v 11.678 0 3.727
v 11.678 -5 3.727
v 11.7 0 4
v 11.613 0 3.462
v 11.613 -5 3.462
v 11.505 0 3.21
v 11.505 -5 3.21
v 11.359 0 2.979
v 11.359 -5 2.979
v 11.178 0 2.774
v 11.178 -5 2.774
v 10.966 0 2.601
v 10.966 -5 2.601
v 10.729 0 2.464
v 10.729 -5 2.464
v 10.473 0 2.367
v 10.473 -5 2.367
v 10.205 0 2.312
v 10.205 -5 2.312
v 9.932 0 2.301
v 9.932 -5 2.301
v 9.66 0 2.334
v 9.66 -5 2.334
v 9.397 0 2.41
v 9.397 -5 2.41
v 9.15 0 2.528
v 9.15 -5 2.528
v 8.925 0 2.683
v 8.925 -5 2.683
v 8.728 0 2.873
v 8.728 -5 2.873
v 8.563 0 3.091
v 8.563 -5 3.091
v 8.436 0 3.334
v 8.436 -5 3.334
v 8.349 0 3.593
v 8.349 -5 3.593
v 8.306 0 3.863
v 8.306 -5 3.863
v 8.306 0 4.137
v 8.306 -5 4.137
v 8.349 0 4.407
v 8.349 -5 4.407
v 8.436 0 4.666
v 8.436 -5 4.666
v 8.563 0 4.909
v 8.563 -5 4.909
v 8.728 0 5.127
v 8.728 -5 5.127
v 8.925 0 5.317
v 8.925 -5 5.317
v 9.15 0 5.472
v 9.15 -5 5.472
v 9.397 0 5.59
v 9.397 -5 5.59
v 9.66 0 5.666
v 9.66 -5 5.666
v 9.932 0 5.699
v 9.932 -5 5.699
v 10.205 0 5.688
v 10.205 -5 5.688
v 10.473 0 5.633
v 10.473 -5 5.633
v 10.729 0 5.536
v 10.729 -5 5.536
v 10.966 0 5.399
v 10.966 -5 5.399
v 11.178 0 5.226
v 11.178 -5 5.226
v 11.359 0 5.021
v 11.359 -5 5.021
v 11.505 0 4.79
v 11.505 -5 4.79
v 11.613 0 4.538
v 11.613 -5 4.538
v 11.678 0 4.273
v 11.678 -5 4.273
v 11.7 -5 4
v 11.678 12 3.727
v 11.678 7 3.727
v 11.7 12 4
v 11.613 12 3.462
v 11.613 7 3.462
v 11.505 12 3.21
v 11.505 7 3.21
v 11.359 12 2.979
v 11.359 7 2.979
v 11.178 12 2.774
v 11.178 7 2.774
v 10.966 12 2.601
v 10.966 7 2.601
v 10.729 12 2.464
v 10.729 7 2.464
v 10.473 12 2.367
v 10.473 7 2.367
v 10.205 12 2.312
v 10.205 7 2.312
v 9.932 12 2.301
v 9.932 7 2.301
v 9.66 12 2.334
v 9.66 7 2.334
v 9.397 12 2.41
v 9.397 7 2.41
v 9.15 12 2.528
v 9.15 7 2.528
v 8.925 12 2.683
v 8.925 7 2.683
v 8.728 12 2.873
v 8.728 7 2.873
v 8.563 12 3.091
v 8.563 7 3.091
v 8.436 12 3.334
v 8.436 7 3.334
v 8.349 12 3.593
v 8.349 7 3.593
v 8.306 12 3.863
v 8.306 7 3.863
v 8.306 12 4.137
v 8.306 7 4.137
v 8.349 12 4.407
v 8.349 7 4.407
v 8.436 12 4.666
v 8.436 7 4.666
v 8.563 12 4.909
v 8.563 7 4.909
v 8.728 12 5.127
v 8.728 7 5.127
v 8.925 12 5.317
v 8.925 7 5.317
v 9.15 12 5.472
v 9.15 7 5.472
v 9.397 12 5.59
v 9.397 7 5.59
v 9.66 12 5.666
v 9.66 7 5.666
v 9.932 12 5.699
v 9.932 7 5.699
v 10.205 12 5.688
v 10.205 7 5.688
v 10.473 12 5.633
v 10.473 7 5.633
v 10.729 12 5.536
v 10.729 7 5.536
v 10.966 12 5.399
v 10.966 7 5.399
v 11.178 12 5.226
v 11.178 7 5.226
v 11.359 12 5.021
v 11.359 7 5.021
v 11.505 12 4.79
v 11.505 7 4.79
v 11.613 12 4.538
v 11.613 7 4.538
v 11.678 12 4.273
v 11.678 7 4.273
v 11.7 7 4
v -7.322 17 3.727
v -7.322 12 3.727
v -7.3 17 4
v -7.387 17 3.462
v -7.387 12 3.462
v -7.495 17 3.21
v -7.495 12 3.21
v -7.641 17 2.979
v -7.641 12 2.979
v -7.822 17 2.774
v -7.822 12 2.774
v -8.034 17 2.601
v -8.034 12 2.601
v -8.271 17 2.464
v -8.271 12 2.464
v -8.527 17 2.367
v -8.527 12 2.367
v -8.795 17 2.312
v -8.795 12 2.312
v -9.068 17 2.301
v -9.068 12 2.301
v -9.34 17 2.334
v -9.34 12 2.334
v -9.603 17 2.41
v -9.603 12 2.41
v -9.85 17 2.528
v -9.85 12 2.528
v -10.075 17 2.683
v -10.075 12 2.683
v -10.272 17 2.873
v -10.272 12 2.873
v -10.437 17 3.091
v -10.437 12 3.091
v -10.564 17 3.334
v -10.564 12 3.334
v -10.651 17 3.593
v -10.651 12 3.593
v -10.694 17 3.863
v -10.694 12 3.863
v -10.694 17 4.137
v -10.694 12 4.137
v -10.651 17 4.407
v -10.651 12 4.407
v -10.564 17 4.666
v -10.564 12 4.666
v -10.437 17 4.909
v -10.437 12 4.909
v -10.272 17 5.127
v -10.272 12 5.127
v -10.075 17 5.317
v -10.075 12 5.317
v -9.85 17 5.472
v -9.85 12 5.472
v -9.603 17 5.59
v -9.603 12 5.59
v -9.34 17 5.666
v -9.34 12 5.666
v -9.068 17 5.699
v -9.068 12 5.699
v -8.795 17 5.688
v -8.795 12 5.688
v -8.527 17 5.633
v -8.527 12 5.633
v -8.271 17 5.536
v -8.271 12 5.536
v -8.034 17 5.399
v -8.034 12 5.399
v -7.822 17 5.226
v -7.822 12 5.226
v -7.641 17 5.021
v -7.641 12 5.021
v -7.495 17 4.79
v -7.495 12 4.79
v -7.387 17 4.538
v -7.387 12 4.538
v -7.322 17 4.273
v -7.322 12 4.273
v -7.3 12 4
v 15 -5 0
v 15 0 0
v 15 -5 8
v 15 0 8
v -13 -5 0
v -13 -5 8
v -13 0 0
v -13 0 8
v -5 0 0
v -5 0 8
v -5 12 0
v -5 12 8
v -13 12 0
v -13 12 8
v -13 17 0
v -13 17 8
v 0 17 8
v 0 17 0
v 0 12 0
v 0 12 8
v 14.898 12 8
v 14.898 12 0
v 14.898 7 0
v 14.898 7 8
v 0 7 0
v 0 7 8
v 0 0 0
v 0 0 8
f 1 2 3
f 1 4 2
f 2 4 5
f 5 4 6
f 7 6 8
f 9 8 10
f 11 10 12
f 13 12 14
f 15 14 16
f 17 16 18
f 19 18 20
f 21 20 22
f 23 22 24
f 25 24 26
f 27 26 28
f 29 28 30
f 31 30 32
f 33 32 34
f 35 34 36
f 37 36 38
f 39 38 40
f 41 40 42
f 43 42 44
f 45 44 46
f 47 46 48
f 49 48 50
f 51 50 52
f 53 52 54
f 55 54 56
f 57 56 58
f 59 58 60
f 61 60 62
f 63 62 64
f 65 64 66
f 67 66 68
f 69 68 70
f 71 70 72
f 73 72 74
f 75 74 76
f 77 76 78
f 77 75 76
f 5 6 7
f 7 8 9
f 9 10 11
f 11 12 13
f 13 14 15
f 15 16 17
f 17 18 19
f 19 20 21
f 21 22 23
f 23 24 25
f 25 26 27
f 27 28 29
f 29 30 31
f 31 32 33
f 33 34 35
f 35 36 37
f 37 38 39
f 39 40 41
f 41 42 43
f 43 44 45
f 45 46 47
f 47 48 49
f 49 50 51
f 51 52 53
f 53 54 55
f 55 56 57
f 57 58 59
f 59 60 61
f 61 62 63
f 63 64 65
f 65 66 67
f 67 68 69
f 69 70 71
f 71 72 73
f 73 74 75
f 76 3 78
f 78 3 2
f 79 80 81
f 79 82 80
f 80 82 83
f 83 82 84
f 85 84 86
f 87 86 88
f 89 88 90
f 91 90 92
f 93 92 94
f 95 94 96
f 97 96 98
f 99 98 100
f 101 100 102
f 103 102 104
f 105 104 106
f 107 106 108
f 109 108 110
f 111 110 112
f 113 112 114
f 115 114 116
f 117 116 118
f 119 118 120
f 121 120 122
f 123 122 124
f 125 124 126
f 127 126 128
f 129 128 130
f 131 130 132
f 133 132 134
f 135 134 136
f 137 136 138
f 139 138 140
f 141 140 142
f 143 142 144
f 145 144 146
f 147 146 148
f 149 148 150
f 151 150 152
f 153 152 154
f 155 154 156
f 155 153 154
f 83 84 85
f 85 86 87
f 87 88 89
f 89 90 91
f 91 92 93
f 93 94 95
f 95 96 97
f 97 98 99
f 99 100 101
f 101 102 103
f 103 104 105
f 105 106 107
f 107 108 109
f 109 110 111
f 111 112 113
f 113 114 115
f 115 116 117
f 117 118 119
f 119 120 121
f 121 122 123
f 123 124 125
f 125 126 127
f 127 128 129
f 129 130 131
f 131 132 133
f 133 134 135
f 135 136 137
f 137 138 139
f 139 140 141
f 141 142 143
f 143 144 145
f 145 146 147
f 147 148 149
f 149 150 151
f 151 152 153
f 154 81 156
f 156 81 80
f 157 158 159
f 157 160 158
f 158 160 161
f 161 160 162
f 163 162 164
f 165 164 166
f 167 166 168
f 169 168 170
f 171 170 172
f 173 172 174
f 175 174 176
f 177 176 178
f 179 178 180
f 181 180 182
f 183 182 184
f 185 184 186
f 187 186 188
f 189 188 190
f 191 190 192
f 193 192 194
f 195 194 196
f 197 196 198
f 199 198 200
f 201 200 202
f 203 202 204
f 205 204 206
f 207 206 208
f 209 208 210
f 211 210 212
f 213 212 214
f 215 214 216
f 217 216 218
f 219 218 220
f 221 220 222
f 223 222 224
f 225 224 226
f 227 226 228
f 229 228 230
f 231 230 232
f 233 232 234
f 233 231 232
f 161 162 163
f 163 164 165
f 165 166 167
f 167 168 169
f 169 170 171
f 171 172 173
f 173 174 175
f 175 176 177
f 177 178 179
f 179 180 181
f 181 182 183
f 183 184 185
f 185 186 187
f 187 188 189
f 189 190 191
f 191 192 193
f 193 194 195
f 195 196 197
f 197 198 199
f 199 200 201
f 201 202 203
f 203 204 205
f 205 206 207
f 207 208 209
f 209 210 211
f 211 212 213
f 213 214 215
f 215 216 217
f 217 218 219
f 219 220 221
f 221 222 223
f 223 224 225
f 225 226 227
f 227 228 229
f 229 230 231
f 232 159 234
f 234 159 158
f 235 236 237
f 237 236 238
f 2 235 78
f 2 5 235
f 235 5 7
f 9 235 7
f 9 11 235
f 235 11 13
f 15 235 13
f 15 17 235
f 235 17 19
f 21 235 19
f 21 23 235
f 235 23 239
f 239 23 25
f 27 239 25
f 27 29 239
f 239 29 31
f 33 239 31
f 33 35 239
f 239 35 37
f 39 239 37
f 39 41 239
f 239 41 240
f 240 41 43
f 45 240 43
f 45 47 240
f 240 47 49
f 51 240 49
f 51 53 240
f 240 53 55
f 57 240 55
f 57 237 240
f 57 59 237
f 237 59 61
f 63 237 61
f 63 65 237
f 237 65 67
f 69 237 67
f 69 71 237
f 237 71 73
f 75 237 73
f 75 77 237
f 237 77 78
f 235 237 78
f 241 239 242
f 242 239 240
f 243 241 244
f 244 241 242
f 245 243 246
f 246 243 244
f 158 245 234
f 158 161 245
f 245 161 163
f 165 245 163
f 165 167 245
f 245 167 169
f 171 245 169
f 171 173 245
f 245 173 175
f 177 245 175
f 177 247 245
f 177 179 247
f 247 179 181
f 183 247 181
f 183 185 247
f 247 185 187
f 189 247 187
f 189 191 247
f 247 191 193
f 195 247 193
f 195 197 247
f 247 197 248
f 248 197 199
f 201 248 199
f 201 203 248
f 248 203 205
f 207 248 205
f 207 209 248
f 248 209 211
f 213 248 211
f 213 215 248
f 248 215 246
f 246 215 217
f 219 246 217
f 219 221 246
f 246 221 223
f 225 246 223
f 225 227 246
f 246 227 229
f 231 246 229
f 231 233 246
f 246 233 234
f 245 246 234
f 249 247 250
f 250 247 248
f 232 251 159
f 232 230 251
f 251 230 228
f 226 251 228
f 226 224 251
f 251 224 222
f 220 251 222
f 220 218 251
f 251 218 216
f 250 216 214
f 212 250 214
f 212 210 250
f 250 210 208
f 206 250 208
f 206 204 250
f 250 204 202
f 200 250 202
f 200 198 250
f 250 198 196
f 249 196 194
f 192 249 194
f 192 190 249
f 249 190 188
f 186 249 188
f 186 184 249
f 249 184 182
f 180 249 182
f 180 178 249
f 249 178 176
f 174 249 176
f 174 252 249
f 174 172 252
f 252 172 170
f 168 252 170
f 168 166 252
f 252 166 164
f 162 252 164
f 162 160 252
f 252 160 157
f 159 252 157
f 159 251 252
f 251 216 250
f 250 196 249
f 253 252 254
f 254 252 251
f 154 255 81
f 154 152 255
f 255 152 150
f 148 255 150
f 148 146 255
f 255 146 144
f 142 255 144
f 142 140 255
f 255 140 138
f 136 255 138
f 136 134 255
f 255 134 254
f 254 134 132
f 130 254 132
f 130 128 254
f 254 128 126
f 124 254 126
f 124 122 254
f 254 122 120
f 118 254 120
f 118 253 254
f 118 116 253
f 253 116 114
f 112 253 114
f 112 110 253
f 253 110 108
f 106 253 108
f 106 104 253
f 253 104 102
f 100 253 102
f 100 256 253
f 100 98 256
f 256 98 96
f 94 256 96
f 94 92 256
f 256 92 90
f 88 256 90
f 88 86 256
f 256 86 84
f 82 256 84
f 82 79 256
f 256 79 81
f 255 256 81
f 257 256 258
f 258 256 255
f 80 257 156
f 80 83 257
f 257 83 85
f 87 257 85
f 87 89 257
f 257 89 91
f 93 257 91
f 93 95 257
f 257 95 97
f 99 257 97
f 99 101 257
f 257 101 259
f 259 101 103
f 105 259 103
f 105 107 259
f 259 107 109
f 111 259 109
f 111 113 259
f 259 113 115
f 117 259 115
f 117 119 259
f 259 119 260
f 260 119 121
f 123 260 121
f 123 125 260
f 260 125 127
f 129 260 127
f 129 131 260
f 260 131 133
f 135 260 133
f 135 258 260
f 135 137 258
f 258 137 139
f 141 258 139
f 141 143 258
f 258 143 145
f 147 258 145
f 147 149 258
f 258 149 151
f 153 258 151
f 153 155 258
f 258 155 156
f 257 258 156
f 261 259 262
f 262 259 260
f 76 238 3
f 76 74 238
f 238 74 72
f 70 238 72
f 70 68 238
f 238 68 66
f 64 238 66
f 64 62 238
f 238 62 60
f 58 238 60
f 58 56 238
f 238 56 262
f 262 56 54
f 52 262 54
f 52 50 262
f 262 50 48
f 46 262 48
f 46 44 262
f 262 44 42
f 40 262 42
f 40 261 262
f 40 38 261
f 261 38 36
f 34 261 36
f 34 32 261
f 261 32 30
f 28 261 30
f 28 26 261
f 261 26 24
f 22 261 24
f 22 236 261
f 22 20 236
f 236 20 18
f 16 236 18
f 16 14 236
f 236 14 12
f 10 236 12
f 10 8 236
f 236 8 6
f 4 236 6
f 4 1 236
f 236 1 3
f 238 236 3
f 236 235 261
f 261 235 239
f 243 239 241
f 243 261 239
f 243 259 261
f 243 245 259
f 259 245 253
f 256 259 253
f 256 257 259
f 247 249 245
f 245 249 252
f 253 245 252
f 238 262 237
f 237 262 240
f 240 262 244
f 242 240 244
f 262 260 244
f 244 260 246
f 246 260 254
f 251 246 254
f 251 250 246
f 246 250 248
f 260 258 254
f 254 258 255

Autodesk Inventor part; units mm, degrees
ref_plane "YZ Plane" through (0, 0, 0) normal (1, 0, 0) x (0, 1, 0)
ref_plane "XZ Plane" through (0, 0, 0) normal (0, 1, 0) x (-1, 0, 0)
ref_plane "XY Plane" through (0, 0, 0) normal (0, 0, 1) x (1, 0, 0)
sketch "Sketch1" plane through (0, 0, 0) normal (0, 0, 1) x (1, 0, 0)
  line L0 (0, 0) -> (15, 0)
  line L1 (15, 0) -> (15, -5)
  line L2 (15, -5) -> (-13, -5)
  line L3 (-13, -5) -> (-13, 0)
  line L4 (-13, 0) -> (-5, 0)
  line L5 (-5, 0) -> (-5, 12)
  line L6 (-5, 12) -> (-13, 12)
  line L7 (-13, 12) -> (-13, 17)
  line L8 (14.8978, 12) -> (14.8978, 7)
  line L9 (14.8978, 7) -> (0, 7)
  line L10 (0, 7) -> (0, 0)
  line L11 (-13, 17) -> (0, 17)
  line L12 (0, 17) -> (0, 12)
  line L13 (0, 12) -> (14.8978, 12)
  dimension "d0" = 15
  dimension "d1" = 5
  dimension "d2" = 28
  dimension "d3" = 5
  dimension "d4" = 8
  dimension "d5" = 12
  dimension "d6" = 8
  dimension "d7" = 5
  dimension "d9" = 5
  dimension "d19" = 5
extrude "Extrusion1" add sketch "Sketch1" along normal blind 8
sketch "Sketch3" plane through (-13, 17, 0) normal (0, 1, 0) x (1, 0, 0)
  line L0 (0, 0) -> (0, -8) projected
  line L1 (13, 0) -> (13, -8) projected
  circle A0 centre (23, -4) radius 1.7
  circle A1 centre (4, -4) radius 1.7
  point P0 (13, -4)
  point P1 (13, -4)
  dimension "d20" = 3.4
  dimension "d21" = 3.4
  dimension "d22" = 4
  dimension "d23" = 10
extrude "Extrusion3" cut sketch "Sketch3" against normal blind 30
delete faces "Delete Face1" heal yes whole lump no faces at (-7.322, -3.3333, 4.2727)
properties part number "Pulley vice"
